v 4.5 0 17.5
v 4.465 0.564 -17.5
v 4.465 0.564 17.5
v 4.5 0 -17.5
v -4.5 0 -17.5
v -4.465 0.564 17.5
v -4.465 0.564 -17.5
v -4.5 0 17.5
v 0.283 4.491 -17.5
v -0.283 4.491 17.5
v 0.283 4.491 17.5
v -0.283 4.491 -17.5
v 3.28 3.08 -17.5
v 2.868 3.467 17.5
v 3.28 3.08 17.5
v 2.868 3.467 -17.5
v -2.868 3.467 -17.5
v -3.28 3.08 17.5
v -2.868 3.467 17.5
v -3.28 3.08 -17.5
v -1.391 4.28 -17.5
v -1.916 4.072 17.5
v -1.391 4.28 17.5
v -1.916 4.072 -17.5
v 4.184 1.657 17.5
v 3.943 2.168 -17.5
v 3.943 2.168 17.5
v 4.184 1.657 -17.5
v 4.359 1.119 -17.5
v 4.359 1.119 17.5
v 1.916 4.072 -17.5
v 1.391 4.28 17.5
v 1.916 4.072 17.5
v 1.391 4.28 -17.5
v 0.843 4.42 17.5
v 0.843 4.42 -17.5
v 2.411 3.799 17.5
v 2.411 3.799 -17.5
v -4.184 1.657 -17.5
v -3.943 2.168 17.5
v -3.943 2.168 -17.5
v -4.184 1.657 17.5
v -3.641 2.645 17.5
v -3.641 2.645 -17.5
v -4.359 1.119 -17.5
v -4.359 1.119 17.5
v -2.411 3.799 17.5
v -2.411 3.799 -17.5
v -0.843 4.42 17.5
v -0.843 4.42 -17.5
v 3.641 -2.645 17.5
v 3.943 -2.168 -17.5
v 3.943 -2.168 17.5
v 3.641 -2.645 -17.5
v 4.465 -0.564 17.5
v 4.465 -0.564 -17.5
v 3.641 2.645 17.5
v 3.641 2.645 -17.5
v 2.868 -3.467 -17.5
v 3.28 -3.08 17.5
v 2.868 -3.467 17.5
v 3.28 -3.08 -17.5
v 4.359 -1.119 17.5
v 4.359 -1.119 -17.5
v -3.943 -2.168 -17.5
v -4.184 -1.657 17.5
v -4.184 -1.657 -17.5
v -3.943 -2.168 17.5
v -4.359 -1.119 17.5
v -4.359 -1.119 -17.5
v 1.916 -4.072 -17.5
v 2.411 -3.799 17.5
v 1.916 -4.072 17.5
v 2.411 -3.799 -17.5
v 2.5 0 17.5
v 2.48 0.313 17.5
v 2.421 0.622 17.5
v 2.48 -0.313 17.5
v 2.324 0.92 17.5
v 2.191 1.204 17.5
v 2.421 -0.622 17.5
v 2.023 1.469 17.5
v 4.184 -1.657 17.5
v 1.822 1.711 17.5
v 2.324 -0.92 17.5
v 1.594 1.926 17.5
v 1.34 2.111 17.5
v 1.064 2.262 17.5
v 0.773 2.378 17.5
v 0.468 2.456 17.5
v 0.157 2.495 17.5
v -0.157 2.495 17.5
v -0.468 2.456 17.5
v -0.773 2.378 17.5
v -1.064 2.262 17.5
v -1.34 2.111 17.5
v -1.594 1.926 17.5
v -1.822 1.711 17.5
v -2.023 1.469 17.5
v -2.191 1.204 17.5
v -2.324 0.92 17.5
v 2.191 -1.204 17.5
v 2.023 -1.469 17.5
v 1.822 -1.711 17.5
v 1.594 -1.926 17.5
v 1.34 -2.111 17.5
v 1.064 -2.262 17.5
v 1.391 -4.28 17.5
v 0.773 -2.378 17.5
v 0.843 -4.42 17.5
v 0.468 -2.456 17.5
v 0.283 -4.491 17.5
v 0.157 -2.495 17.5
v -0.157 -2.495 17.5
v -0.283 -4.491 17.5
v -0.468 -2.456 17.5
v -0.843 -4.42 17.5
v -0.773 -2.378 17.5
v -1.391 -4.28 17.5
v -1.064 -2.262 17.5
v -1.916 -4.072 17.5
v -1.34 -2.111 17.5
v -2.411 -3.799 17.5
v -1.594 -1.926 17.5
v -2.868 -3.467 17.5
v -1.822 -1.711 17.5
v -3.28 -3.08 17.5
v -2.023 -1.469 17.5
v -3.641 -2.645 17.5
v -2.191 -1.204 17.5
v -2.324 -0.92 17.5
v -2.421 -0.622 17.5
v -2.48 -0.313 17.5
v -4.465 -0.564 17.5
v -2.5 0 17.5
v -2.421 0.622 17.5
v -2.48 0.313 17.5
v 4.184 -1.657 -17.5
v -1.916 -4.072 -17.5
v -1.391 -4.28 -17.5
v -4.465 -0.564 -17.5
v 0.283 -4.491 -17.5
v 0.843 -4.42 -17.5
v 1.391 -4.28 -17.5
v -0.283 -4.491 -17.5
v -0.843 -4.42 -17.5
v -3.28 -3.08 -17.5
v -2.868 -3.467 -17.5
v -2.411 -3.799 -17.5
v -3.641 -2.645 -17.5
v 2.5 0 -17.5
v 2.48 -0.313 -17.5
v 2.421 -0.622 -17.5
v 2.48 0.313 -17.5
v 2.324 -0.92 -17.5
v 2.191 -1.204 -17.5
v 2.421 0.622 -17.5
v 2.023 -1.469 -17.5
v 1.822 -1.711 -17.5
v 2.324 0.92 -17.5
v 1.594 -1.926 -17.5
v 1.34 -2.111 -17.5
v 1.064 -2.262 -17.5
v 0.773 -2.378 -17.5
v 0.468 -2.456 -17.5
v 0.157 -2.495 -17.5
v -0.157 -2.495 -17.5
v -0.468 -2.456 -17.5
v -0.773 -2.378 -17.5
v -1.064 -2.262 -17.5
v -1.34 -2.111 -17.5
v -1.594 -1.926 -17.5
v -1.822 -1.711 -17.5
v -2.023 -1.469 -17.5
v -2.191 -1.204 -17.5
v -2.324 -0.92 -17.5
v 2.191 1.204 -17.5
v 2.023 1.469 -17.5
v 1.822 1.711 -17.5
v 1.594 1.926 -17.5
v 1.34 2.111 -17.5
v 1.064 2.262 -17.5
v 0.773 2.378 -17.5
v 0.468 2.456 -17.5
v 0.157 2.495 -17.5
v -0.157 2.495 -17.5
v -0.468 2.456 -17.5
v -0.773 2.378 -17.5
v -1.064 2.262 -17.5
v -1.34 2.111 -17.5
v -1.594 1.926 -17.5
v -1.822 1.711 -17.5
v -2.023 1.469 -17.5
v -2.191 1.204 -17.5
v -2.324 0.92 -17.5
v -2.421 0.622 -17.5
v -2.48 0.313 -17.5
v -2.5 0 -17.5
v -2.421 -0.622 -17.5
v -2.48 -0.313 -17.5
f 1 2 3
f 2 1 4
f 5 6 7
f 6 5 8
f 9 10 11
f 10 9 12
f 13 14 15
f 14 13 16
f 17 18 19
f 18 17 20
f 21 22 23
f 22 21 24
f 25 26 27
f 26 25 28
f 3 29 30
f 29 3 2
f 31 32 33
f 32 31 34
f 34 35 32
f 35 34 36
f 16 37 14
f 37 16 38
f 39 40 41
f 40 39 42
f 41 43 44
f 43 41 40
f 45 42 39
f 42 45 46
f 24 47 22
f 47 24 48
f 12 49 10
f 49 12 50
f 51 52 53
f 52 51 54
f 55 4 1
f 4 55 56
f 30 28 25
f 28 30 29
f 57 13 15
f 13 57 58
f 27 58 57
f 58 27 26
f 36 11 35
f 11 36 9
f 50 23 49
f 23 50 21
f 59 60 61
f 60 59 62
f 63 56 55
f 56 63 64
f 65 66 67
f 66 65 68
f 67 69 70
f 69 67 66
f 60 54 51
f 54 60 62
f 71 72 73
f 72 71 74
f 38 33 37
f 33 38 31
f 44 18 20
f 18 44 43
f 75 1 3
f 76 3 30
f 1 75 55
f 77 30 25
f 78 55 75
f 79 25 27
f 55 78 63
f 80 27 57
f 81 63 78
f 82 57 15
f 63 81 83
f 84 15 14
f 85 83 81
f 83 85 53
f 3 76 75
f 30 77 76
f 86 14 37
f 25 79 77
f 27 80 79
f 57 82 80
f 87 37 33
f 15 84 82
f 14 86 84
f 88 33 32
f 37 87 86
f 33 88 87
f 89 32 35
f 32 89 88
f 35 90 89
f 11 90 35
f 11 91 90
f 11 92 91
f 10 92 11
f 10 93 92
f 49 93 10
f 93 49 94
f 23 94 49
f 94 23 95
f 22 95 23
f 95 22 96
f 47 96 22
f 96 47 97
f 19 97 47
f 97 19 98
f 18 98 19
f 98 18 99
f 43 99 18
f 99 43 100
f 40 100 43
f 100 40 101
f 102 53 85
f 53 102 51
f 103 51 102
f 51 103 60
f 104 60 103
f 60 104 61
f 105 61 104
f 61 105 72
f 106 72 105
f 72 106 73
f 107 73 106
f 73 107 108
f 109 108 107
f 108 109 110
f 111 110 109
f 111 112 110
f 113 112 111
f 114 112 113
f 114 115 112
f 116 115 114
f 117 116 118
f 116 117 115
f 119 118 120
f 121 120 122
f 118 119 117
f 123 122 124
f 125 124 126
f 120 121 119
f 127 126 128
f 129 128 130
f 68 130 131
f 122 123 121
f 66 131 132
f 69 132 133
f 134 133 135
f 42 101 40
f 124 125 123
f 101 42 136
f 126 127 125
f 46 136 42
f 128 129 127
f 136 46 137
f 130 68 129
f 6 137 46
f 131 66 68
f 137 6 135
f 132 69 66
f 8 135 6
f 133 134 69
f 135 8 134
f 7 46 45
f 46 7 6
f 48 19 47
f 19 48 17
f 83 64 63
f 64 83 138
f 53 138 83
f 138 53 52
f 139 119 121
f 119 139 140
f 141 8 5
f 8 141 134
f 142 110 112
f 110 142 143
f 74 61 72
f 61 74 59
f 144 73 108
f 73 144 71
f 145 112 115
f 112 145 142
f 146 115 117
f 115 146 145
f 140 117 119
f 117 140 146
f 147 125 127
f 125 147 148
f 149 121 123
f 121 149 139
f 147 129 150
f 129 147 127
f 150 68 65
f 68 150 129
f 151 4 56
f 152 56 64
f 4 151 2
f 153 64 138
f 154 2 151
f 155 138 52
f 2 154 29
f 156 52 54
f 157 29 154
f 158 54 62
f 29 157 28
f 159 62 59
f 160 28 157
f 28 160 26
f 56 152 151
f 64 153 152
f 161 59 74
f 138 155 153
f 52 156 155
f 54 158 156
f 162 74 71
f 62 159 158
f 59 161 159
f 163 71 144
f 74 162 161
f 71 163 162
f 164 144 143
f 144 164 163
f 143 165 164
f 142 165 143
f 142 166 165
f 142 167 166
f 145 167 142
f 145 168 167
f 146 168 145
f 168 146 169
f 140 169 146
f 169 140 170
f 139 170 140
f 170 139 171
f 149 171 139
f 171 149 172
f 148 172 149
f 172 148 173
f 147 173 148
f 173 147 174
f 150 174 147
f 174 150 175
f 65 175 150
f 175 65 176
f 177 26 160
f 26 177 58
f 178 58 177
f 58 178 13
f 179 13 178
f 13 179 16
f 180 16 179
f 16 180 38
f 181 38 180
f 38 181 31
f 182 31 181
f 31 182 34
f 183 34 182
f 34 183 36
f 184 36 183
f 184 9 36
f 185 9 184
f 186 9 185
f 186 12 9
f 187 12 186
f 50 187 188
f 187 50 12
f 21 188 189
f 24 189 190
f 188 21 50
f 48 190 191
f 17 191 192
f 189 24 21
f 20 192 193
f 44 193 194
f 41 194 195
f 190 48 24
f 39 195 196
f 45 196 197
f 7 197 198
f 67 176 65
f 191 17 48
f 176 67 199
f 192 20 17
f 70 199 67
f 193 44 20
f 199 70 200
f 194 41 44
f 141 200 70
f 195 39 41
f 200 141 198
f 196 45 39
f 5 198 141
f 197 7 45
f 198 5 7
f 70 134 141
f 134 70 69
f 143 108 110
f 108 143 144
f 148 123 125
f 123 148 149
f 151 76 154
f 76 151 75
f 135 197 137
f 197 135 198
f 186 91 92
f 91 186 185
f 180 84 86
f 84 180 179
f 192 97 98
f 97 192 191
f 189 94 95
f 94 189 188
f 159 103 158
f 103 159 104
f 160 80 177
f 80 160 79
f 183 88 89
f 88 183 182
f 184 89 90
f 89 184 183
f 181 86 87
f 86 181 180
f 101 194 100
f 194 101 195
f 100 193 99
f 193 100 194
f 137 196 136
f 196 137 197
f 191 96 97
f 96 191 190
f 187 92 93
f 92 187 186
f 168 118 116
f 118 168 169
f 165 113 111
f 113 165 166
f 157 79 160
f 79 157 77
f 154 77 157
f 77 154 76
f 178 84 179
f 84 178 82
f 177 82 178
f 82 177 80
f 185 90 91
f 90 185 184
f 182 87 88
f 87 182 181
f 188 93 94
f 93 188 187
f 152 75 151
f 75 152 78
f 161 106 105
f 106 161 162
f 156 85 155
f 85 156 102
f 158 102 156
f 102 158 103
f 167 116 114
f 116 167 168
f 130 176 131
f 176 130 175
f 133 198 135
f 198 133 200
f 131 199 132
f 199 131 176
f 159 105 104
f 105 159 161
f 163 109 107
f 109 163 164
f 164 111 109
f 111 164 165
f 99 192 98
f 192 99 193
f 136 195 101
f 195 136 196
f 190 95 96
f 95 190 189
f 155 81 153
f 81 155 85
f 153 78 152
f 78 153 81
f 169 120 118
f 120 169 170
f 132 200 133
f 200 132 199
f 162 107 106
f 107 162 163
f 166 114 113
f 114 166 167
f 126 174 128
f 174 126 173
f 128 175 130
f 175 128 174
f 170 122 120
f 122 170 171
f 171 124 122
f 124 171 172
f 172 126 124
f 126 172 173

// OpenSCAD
$fn = 50;


difference() {
	union() {
		translate(v = [0, 0, -17.5000000000]) {
			cylinder(h = 35, r = 4.5000000000);
		}
	}
	union() {
		translate(v = [0, 0, -100.0000000000]) {
			cylinder(h = 200, r = 2.5000000000);
		}
	}
}
